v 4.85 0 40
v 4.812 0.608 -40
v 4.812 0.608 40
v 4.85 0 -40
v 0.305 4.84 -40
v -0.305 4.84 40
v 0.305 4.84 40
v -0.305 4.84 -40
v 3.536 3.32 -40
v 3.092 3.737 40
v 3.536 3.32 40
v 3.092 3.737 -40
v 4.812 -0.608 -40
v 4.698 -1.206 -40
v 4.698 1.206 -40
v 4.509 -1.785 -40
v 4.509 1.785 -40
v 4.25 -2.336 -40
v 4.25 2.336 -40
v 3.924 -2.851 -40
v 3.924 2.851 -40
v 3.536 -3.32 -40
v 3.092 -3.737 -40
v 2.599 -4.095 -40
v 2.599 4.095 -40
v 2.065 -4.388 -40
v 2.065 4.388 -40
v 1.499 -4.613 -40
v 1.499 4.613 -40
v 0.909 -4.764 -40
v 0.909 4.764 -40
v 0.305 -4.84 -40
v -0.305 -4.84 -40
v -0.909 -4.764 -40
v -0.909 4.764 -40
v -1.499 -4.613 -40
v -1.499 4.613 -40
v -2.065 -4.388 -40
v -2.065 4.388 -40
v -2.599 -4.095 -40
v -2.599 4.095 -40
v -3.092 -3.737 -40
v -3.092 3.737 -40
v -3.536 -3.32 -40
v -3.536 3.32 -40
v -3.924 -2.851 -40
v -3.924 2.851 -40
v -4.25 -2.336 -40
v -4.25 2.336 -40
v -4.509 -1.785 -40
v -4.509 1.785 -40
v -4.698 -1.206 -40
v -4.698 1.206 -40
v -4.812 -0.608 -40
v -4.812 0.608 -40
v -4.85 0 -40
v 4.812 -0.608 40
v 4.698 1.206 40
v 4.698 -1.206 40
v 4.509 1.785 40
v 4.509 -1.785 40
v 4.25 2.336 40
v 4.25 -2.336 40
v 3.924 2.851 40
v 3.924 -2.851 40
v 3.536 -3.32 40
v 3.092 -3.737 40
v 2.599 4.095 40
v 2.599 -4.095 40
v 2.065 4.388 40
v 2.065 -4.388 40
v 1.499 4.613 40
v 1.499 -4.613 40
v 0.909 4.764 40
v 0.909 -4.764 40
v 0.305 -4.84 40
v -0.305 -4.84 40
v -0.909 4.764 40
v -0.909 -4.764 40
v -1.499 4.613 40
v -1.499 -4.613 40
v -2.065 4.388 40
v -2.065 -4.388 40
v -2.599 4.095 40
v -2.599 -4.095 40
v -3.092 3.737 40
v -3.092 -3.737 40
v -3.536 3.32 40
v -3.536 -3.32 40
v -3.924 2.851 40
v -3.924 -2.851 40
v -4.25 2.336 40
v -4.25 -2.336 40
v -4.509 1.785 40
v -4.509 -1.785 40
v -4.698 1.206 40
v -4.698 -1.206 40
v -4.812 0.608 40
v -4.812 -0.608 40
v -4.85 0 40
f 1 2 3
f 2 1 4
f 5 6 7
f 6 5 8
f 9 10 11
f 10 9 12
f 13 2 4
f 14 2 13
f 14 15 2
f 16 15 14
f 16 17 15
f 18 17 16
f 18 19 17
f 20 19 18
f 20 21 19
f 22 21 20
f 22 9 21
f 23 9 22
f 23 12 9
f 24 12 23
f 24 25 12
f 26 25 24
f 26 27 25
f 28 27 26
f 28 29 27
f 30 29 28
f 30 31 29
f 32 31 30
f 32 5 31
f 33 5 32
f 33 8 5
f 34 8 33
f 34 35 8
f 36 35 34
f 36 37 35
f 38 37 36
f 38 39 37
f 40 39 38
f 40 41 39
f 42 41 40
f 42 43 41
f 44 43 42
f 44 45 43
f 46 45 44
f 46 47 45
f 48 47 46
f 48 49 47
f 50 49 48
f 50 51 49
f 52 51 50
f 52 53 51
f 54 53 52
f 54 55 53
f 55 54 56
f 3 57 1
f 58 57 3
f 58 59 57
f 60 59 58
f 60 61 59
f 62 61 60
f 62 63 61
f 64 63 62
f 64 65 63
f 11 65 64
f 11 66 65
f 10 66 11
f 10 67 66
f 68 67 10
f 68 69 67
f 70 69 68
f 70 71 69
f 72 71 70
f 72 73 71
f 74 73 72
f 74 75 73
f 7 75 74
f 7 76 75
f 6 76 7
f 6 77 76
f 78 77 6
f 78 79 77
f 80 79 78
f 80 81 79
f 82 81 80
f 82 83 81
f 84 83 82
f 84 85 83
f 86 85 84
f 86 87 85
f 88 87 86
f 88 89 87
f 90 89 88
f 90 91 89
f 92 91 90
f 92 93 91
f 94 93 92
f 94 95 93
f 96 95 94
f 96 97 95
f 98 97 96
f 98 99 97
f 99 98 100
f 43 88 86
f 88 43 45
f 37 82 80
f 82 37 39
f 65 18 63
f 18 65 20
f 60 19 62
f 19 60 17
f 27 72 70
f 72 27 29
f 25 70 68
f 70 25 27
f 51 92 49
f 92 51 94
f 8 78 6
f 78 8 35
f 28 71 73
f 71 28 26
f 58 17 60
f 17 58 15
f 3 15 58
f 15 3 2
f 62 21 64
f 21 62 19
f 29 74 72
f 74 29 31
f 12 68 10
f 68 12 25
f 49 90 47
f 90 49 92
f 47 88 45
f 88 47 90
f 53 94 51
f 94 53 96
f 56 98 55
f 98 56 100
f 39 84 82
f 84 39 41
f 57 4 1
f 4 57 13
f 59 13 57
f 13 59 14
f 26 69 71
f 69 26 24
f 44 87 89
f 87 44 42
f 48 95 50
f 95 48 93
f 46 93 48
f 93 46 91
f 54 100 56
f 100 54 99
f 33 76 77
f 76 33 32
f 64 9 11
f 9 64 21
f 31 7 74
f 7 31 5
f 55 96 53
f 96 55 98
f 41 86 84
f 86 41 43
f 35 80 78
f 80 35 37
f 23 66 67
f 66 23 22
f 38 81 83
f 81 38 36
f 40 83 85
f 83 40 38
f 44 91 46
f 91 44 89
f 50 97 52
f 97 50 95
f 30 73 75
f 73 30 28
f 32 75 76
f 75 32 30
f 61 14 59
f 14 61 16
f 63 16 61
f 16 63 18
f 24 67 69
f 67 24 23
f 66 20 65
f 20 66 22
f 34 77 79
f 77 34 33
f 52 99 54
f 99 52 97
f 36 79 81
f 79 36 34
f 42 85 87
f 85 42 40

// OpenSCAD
$fn = 50;


difference() {
	union() {
		translate(v = [0, 0, -40.0000000000]) {
			cylinder(h = 80, r = 4.8500000000);
		}
	}
	union() {
		translate(v = [0, 0, -100.0000000000]) {
			cylinder(h = 200, r = 0);
		}
	}
}
